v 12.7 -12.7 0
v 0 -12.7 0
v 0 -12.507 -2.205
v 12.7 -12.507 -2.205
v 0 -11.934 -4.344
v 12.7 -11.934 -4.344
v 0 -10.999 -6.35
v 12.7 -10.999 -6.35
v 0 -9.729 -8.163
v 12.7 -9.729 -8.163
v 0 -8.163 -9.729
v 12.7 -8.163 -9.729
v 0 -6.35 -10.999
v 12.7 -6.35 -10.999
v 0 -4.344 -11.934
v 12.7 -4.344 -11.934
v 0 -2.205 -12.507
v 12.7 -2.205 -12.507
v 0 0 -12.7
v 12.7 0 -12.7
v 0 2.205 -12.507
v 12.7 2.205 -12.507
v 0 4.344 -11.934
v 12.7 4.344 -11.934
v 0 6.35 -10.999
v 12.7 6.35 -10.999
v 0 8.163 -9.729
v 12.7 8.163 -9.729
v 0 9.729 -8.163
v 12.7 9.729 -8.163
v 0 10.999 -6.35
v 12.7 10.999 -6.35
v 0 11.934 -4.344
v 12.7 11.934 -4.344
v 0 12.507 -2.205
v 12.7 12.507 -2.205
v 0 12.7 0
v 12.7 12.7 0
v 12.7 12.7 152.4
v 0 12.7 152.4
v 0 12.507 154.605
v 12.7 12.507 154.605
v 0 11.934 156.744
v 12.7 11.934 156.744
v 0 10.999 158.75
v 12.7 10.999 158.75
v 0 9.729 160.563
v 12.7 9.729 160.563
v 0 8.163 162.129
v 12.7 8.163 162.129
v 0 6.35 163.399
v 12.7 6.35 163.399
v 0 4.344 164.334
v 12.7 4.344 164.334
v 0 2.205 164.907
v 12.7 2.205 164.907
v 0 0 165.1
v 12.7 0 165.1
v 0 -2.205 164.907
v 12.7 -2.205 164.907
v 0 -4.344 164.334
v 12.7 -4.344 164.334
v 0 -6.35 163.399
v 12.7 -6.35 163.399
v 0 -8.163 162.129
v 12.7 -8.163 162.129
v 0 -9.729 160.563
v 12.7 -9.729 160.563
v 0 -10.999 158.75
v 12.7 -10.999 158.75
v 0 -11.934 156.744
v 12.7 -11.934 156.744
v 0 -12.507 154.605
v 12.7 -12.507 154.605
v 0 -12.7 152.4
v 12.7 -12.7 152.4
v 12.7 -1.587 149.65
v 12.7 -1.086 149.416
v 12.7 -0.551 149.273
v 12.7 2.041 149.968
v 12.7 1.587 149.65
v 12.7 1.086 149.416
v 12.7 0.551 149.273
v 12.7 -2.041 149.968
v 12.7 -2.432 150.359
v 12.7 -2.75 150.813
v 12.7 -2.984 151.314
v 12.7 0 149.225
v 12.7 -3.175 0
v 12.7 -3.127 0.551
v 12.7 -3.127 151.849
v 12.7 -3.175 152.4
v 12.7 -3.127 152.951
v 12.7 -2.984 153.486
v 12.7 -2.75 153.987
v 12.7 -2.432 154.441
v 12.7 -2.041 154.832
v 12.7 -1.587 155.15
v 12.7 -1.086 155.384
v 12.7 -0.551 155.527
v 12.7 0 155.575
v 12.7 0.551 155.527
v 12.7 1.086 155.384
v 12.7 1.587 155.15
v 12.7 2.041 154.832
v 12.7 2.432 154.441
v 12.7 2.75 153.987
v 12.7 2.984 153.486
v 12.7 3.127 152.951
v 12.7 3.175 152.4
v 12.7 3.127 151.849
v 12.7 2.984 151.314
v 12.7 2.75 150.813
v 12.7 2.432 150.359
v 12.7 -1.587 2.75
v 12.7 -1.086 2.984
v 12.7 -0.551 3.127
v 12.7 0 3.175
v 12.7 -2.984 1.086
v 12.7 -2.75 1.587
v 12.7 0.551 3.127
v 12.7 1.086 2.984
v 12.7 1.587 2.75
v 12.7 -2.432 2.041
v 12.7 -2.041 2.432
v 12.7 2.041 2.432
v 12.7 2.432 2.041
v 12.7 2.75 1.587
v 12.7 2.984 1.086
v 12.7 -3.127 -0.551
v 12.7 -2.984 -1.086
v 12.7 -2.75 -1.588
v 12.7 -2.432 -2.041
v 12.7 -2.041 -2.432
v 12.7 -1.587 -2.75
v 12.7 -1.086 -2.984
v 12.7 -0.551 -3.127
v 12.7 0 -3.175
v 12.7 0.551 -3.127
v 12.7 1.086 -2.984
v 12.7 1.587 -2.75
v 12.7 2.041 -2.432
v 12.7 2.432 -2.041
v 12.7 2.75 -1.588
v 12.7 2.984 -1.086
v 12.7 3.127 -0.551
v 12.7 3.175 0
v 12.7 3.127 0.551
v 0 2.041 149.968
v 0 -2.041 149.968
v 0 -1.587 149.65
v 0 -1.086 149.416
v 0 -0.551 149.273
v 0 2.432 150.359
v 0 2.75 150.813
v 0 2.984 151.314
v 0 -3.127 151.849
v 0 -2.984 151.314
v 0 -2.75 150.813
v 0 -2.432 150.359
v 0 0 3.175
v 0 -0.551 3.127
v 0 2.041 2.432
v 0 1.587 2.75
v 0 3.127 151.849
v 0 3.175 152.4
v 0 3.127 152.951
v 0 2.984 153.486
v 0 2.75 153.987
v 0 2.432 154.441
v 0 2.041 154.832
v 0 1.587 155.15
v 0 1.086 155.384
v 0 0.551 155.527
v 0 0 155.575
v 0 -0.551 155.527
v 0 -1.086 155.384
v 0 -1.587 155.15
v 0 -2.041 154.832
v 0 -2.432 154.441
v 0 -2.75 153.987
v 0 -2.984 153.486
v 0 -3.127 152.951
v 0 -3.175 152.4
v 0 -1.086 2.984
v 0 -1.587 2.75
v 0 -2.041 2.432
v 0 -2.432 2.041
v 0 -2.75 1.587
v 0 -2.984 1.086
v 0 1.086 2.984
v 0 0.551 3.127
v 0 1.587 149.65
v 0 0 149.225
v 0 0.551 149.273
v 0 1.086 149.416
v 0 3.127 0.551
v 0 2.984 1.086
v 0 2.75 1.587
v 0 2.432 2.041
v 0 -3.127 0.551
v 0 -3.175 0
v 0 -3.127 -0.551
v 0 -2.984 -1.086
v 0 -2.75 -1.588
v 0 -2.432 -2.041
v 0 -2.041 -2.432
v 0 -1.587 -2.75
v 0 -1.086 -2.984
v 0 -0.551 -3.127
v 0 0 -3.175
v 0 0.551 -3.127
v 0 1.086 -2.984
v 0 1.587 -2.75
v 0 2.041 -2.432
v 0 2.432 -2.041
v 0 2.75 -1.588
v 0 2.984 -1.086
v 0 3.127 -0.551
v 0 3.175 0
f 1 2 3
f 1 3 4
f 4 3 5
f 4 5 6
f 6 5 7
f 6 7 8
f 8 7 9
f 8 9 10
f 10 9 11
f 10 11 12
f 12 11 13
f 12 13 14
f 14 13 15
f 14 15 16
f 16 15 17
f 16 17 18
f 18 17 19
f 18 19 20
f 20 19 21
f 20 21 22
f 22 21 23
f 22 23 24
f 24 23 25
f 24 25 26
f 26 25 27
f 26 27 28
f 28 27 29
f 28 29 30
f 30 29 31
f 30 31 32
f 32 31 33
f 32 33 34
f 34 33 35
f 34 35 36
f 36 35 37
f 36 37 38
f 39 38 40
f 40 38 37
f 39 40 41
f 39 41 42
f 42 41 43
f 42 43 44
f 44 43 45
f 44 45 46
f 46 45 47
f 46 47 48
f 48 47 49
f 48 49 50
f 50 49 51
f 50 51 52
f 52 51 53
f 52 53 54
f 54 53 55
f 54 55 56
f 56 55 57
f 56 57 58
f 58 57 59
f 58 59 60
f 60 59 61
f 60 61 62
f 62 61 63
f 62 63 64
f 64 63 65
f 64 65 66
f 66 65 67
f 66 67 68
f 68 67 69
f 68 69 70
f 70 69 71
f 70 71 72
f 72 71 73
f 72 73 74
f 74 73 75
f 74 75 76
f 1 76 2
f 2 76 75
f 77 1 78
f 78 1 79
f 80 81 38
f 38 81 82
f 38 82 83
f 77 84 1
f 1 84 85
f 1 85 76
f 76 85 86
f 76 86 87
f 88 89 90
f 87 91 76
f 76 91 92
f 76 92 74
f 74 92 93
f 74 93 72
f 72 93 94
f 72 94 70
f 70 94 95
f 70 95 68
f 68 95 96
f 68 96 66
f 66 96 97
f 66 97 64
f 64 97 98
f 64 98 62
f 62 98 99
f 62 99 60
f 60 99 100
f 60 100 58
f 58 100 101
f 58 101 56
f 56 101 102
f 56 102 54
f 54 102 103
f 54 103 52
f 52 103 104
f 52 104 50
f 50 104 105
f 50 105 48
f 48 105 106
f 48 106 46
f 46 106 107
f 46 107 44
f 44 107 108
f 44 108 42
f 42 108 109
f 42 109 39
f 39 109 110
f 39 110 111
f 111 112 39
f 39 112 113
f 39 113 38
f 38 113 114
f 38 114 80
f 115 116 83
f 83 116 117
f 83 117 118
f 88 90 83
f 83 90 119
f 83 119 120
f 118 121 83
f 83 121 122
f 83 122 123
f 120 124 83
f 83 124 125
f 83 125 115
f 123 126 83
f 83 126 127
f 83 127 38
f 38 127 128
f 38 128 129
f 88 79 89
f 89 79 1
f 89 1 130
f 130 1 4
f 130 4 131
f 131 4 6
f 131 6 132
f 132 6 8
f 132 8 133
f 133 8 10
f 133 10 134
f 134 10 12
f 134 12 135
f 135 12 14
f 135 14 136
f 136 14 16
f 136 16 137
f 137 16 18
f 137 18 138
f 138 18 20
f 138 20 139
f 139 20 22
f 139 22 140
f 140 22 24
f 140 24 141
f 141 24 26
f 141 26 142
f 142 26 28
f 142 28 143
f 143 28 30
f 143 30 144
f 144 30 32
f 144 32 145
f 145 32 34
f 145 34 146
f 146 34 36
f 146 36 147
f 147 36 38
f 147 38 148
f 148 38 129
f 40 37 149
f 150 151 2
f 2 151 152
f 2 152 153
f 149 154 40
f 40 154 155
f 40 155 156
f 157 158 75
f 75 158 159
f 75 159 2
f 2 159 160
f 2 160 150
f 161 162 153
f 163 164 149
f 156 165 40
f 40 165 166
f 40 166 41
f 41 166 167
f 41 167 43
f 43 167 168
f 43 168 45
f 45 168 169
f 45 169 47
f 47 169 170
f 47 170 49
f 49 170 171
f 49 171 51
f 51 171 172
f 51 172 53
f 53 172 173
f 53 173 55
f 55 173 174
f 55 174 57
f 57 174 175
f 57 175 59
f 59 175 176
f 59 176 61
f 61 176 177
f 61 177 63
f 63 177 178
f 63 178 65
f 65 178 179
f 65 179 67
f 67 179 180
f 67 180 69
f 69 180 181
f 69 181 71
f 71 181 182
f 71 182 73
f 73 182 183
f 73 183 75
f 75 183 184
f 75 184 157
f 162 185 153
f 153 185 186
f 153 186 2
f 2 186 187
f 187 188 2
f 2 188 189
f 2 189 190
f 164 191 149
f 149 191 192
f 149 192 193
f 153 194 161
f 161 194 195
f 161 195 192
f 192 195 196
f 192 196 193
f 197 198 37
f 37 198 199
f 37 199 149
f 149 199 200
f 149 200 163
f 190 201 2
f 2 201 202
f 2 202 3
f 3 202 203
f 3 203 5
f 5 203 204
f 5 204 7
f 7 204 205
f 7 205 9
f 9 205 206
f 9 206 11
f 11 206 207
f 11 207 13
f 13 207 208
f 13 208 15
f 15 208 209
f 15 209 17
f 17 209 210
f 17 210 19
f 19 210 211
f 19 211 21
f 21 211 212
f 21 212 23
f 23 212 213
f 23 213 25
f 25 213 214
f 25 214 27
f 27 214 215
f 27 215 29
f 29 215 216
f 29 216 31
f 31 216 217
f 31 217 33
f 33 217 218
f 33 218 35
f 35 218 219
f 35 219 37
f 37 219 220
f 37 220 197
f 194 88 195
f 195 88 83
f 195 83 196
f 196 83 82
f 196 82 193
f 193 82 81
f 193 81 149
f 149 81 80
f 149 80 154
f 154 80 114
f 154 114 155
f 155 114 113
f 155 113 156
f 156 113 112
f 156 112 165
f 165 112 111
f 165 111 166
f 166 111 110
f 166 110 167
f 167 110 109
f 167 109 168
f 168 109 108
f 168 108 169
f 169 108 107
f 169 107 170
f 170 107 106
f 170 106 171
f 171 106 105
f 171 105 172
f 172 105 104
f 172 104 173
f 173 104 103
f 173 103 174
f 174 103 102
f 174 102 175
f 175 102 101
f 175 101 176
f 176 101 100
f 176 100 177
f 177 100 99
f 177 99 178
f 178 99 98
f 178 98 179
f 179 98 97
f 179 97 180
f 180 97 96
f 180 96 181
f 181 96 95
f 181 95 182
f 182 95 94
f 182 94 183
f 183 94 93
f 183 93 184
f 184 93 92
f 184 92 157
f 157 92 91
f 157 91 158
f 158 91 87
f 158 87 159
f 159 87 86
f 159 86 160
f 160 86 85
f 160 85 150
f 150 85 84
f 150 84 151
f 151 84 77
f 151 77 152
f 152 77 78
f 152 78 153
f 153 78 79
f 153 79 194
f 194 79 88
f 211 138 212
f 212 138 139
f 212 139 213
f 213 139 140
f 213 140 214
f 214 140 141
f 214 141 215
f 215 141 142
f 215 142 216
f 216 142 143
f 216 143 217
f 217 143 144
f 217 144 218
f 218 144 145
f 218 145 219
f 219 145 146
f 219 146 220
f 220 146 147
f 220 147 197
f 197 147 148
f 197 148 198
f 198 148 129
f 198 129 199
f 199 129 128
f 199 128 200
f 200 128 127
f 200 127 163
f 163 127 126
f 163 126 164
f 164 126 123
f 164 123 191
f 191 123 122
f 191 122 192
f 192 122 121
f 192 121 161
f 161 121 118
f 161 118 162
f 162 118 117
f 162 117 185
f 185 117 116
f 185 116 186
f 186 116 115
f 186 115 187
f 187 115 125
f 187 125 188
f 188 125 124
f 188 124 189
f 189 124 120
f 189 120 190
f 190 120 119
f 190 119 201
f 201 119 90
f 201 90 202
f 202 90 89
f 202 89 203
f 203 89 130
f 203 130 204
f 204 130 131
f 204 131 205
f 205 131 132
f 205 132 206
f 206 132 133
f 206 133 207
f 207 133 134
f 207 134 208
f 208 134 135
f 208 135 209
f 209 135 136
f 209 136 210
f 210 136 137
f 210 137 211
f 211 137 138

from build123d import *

# Parameters (mm, degrees)
BOSS_EXTRUDE1_DEPTH = 12.7
SKETCH2_R           = 3.175
CUT_EXTRUDE1_DEPTH  = 12.7


with BuildPart() as part:
    # Sketch1 → Boss-Extrude1 (new body)
    with BuildSketch(Plane.YZ):
        with BuildLine():
            Line((-12.7, 0), (-12.7, 152.4))
            ThreePointArc((-12.7, 152.4), (0, 165.1), (12.7, 152.4))
            Line((12.7, 152.4), (12.7, 0))
            ThreePointArc((12.7, 0), (0, -12.7), (-12.7, 0))
        make_face()
    extrude(amount=BOSS_EXTRUDE1_DEPTH)

    # Sketch2 → Cut-Extrude1 (cut)
    with BuildSketch(Plane.YZ.offset(12.7)):
        with Locations(Location((0, 0, 0), (0, 0, 270))):
            Circle(SKETCH2_R)
        with Locations(Location((0, 152.4, 0), (0, 0, 270))):
            Circle(SKETCH2_R)
    extrude(amount=-CUT_EXTRUDE1_DEPTH, mode=Mode.SUBTRACT)


solid = part.part
